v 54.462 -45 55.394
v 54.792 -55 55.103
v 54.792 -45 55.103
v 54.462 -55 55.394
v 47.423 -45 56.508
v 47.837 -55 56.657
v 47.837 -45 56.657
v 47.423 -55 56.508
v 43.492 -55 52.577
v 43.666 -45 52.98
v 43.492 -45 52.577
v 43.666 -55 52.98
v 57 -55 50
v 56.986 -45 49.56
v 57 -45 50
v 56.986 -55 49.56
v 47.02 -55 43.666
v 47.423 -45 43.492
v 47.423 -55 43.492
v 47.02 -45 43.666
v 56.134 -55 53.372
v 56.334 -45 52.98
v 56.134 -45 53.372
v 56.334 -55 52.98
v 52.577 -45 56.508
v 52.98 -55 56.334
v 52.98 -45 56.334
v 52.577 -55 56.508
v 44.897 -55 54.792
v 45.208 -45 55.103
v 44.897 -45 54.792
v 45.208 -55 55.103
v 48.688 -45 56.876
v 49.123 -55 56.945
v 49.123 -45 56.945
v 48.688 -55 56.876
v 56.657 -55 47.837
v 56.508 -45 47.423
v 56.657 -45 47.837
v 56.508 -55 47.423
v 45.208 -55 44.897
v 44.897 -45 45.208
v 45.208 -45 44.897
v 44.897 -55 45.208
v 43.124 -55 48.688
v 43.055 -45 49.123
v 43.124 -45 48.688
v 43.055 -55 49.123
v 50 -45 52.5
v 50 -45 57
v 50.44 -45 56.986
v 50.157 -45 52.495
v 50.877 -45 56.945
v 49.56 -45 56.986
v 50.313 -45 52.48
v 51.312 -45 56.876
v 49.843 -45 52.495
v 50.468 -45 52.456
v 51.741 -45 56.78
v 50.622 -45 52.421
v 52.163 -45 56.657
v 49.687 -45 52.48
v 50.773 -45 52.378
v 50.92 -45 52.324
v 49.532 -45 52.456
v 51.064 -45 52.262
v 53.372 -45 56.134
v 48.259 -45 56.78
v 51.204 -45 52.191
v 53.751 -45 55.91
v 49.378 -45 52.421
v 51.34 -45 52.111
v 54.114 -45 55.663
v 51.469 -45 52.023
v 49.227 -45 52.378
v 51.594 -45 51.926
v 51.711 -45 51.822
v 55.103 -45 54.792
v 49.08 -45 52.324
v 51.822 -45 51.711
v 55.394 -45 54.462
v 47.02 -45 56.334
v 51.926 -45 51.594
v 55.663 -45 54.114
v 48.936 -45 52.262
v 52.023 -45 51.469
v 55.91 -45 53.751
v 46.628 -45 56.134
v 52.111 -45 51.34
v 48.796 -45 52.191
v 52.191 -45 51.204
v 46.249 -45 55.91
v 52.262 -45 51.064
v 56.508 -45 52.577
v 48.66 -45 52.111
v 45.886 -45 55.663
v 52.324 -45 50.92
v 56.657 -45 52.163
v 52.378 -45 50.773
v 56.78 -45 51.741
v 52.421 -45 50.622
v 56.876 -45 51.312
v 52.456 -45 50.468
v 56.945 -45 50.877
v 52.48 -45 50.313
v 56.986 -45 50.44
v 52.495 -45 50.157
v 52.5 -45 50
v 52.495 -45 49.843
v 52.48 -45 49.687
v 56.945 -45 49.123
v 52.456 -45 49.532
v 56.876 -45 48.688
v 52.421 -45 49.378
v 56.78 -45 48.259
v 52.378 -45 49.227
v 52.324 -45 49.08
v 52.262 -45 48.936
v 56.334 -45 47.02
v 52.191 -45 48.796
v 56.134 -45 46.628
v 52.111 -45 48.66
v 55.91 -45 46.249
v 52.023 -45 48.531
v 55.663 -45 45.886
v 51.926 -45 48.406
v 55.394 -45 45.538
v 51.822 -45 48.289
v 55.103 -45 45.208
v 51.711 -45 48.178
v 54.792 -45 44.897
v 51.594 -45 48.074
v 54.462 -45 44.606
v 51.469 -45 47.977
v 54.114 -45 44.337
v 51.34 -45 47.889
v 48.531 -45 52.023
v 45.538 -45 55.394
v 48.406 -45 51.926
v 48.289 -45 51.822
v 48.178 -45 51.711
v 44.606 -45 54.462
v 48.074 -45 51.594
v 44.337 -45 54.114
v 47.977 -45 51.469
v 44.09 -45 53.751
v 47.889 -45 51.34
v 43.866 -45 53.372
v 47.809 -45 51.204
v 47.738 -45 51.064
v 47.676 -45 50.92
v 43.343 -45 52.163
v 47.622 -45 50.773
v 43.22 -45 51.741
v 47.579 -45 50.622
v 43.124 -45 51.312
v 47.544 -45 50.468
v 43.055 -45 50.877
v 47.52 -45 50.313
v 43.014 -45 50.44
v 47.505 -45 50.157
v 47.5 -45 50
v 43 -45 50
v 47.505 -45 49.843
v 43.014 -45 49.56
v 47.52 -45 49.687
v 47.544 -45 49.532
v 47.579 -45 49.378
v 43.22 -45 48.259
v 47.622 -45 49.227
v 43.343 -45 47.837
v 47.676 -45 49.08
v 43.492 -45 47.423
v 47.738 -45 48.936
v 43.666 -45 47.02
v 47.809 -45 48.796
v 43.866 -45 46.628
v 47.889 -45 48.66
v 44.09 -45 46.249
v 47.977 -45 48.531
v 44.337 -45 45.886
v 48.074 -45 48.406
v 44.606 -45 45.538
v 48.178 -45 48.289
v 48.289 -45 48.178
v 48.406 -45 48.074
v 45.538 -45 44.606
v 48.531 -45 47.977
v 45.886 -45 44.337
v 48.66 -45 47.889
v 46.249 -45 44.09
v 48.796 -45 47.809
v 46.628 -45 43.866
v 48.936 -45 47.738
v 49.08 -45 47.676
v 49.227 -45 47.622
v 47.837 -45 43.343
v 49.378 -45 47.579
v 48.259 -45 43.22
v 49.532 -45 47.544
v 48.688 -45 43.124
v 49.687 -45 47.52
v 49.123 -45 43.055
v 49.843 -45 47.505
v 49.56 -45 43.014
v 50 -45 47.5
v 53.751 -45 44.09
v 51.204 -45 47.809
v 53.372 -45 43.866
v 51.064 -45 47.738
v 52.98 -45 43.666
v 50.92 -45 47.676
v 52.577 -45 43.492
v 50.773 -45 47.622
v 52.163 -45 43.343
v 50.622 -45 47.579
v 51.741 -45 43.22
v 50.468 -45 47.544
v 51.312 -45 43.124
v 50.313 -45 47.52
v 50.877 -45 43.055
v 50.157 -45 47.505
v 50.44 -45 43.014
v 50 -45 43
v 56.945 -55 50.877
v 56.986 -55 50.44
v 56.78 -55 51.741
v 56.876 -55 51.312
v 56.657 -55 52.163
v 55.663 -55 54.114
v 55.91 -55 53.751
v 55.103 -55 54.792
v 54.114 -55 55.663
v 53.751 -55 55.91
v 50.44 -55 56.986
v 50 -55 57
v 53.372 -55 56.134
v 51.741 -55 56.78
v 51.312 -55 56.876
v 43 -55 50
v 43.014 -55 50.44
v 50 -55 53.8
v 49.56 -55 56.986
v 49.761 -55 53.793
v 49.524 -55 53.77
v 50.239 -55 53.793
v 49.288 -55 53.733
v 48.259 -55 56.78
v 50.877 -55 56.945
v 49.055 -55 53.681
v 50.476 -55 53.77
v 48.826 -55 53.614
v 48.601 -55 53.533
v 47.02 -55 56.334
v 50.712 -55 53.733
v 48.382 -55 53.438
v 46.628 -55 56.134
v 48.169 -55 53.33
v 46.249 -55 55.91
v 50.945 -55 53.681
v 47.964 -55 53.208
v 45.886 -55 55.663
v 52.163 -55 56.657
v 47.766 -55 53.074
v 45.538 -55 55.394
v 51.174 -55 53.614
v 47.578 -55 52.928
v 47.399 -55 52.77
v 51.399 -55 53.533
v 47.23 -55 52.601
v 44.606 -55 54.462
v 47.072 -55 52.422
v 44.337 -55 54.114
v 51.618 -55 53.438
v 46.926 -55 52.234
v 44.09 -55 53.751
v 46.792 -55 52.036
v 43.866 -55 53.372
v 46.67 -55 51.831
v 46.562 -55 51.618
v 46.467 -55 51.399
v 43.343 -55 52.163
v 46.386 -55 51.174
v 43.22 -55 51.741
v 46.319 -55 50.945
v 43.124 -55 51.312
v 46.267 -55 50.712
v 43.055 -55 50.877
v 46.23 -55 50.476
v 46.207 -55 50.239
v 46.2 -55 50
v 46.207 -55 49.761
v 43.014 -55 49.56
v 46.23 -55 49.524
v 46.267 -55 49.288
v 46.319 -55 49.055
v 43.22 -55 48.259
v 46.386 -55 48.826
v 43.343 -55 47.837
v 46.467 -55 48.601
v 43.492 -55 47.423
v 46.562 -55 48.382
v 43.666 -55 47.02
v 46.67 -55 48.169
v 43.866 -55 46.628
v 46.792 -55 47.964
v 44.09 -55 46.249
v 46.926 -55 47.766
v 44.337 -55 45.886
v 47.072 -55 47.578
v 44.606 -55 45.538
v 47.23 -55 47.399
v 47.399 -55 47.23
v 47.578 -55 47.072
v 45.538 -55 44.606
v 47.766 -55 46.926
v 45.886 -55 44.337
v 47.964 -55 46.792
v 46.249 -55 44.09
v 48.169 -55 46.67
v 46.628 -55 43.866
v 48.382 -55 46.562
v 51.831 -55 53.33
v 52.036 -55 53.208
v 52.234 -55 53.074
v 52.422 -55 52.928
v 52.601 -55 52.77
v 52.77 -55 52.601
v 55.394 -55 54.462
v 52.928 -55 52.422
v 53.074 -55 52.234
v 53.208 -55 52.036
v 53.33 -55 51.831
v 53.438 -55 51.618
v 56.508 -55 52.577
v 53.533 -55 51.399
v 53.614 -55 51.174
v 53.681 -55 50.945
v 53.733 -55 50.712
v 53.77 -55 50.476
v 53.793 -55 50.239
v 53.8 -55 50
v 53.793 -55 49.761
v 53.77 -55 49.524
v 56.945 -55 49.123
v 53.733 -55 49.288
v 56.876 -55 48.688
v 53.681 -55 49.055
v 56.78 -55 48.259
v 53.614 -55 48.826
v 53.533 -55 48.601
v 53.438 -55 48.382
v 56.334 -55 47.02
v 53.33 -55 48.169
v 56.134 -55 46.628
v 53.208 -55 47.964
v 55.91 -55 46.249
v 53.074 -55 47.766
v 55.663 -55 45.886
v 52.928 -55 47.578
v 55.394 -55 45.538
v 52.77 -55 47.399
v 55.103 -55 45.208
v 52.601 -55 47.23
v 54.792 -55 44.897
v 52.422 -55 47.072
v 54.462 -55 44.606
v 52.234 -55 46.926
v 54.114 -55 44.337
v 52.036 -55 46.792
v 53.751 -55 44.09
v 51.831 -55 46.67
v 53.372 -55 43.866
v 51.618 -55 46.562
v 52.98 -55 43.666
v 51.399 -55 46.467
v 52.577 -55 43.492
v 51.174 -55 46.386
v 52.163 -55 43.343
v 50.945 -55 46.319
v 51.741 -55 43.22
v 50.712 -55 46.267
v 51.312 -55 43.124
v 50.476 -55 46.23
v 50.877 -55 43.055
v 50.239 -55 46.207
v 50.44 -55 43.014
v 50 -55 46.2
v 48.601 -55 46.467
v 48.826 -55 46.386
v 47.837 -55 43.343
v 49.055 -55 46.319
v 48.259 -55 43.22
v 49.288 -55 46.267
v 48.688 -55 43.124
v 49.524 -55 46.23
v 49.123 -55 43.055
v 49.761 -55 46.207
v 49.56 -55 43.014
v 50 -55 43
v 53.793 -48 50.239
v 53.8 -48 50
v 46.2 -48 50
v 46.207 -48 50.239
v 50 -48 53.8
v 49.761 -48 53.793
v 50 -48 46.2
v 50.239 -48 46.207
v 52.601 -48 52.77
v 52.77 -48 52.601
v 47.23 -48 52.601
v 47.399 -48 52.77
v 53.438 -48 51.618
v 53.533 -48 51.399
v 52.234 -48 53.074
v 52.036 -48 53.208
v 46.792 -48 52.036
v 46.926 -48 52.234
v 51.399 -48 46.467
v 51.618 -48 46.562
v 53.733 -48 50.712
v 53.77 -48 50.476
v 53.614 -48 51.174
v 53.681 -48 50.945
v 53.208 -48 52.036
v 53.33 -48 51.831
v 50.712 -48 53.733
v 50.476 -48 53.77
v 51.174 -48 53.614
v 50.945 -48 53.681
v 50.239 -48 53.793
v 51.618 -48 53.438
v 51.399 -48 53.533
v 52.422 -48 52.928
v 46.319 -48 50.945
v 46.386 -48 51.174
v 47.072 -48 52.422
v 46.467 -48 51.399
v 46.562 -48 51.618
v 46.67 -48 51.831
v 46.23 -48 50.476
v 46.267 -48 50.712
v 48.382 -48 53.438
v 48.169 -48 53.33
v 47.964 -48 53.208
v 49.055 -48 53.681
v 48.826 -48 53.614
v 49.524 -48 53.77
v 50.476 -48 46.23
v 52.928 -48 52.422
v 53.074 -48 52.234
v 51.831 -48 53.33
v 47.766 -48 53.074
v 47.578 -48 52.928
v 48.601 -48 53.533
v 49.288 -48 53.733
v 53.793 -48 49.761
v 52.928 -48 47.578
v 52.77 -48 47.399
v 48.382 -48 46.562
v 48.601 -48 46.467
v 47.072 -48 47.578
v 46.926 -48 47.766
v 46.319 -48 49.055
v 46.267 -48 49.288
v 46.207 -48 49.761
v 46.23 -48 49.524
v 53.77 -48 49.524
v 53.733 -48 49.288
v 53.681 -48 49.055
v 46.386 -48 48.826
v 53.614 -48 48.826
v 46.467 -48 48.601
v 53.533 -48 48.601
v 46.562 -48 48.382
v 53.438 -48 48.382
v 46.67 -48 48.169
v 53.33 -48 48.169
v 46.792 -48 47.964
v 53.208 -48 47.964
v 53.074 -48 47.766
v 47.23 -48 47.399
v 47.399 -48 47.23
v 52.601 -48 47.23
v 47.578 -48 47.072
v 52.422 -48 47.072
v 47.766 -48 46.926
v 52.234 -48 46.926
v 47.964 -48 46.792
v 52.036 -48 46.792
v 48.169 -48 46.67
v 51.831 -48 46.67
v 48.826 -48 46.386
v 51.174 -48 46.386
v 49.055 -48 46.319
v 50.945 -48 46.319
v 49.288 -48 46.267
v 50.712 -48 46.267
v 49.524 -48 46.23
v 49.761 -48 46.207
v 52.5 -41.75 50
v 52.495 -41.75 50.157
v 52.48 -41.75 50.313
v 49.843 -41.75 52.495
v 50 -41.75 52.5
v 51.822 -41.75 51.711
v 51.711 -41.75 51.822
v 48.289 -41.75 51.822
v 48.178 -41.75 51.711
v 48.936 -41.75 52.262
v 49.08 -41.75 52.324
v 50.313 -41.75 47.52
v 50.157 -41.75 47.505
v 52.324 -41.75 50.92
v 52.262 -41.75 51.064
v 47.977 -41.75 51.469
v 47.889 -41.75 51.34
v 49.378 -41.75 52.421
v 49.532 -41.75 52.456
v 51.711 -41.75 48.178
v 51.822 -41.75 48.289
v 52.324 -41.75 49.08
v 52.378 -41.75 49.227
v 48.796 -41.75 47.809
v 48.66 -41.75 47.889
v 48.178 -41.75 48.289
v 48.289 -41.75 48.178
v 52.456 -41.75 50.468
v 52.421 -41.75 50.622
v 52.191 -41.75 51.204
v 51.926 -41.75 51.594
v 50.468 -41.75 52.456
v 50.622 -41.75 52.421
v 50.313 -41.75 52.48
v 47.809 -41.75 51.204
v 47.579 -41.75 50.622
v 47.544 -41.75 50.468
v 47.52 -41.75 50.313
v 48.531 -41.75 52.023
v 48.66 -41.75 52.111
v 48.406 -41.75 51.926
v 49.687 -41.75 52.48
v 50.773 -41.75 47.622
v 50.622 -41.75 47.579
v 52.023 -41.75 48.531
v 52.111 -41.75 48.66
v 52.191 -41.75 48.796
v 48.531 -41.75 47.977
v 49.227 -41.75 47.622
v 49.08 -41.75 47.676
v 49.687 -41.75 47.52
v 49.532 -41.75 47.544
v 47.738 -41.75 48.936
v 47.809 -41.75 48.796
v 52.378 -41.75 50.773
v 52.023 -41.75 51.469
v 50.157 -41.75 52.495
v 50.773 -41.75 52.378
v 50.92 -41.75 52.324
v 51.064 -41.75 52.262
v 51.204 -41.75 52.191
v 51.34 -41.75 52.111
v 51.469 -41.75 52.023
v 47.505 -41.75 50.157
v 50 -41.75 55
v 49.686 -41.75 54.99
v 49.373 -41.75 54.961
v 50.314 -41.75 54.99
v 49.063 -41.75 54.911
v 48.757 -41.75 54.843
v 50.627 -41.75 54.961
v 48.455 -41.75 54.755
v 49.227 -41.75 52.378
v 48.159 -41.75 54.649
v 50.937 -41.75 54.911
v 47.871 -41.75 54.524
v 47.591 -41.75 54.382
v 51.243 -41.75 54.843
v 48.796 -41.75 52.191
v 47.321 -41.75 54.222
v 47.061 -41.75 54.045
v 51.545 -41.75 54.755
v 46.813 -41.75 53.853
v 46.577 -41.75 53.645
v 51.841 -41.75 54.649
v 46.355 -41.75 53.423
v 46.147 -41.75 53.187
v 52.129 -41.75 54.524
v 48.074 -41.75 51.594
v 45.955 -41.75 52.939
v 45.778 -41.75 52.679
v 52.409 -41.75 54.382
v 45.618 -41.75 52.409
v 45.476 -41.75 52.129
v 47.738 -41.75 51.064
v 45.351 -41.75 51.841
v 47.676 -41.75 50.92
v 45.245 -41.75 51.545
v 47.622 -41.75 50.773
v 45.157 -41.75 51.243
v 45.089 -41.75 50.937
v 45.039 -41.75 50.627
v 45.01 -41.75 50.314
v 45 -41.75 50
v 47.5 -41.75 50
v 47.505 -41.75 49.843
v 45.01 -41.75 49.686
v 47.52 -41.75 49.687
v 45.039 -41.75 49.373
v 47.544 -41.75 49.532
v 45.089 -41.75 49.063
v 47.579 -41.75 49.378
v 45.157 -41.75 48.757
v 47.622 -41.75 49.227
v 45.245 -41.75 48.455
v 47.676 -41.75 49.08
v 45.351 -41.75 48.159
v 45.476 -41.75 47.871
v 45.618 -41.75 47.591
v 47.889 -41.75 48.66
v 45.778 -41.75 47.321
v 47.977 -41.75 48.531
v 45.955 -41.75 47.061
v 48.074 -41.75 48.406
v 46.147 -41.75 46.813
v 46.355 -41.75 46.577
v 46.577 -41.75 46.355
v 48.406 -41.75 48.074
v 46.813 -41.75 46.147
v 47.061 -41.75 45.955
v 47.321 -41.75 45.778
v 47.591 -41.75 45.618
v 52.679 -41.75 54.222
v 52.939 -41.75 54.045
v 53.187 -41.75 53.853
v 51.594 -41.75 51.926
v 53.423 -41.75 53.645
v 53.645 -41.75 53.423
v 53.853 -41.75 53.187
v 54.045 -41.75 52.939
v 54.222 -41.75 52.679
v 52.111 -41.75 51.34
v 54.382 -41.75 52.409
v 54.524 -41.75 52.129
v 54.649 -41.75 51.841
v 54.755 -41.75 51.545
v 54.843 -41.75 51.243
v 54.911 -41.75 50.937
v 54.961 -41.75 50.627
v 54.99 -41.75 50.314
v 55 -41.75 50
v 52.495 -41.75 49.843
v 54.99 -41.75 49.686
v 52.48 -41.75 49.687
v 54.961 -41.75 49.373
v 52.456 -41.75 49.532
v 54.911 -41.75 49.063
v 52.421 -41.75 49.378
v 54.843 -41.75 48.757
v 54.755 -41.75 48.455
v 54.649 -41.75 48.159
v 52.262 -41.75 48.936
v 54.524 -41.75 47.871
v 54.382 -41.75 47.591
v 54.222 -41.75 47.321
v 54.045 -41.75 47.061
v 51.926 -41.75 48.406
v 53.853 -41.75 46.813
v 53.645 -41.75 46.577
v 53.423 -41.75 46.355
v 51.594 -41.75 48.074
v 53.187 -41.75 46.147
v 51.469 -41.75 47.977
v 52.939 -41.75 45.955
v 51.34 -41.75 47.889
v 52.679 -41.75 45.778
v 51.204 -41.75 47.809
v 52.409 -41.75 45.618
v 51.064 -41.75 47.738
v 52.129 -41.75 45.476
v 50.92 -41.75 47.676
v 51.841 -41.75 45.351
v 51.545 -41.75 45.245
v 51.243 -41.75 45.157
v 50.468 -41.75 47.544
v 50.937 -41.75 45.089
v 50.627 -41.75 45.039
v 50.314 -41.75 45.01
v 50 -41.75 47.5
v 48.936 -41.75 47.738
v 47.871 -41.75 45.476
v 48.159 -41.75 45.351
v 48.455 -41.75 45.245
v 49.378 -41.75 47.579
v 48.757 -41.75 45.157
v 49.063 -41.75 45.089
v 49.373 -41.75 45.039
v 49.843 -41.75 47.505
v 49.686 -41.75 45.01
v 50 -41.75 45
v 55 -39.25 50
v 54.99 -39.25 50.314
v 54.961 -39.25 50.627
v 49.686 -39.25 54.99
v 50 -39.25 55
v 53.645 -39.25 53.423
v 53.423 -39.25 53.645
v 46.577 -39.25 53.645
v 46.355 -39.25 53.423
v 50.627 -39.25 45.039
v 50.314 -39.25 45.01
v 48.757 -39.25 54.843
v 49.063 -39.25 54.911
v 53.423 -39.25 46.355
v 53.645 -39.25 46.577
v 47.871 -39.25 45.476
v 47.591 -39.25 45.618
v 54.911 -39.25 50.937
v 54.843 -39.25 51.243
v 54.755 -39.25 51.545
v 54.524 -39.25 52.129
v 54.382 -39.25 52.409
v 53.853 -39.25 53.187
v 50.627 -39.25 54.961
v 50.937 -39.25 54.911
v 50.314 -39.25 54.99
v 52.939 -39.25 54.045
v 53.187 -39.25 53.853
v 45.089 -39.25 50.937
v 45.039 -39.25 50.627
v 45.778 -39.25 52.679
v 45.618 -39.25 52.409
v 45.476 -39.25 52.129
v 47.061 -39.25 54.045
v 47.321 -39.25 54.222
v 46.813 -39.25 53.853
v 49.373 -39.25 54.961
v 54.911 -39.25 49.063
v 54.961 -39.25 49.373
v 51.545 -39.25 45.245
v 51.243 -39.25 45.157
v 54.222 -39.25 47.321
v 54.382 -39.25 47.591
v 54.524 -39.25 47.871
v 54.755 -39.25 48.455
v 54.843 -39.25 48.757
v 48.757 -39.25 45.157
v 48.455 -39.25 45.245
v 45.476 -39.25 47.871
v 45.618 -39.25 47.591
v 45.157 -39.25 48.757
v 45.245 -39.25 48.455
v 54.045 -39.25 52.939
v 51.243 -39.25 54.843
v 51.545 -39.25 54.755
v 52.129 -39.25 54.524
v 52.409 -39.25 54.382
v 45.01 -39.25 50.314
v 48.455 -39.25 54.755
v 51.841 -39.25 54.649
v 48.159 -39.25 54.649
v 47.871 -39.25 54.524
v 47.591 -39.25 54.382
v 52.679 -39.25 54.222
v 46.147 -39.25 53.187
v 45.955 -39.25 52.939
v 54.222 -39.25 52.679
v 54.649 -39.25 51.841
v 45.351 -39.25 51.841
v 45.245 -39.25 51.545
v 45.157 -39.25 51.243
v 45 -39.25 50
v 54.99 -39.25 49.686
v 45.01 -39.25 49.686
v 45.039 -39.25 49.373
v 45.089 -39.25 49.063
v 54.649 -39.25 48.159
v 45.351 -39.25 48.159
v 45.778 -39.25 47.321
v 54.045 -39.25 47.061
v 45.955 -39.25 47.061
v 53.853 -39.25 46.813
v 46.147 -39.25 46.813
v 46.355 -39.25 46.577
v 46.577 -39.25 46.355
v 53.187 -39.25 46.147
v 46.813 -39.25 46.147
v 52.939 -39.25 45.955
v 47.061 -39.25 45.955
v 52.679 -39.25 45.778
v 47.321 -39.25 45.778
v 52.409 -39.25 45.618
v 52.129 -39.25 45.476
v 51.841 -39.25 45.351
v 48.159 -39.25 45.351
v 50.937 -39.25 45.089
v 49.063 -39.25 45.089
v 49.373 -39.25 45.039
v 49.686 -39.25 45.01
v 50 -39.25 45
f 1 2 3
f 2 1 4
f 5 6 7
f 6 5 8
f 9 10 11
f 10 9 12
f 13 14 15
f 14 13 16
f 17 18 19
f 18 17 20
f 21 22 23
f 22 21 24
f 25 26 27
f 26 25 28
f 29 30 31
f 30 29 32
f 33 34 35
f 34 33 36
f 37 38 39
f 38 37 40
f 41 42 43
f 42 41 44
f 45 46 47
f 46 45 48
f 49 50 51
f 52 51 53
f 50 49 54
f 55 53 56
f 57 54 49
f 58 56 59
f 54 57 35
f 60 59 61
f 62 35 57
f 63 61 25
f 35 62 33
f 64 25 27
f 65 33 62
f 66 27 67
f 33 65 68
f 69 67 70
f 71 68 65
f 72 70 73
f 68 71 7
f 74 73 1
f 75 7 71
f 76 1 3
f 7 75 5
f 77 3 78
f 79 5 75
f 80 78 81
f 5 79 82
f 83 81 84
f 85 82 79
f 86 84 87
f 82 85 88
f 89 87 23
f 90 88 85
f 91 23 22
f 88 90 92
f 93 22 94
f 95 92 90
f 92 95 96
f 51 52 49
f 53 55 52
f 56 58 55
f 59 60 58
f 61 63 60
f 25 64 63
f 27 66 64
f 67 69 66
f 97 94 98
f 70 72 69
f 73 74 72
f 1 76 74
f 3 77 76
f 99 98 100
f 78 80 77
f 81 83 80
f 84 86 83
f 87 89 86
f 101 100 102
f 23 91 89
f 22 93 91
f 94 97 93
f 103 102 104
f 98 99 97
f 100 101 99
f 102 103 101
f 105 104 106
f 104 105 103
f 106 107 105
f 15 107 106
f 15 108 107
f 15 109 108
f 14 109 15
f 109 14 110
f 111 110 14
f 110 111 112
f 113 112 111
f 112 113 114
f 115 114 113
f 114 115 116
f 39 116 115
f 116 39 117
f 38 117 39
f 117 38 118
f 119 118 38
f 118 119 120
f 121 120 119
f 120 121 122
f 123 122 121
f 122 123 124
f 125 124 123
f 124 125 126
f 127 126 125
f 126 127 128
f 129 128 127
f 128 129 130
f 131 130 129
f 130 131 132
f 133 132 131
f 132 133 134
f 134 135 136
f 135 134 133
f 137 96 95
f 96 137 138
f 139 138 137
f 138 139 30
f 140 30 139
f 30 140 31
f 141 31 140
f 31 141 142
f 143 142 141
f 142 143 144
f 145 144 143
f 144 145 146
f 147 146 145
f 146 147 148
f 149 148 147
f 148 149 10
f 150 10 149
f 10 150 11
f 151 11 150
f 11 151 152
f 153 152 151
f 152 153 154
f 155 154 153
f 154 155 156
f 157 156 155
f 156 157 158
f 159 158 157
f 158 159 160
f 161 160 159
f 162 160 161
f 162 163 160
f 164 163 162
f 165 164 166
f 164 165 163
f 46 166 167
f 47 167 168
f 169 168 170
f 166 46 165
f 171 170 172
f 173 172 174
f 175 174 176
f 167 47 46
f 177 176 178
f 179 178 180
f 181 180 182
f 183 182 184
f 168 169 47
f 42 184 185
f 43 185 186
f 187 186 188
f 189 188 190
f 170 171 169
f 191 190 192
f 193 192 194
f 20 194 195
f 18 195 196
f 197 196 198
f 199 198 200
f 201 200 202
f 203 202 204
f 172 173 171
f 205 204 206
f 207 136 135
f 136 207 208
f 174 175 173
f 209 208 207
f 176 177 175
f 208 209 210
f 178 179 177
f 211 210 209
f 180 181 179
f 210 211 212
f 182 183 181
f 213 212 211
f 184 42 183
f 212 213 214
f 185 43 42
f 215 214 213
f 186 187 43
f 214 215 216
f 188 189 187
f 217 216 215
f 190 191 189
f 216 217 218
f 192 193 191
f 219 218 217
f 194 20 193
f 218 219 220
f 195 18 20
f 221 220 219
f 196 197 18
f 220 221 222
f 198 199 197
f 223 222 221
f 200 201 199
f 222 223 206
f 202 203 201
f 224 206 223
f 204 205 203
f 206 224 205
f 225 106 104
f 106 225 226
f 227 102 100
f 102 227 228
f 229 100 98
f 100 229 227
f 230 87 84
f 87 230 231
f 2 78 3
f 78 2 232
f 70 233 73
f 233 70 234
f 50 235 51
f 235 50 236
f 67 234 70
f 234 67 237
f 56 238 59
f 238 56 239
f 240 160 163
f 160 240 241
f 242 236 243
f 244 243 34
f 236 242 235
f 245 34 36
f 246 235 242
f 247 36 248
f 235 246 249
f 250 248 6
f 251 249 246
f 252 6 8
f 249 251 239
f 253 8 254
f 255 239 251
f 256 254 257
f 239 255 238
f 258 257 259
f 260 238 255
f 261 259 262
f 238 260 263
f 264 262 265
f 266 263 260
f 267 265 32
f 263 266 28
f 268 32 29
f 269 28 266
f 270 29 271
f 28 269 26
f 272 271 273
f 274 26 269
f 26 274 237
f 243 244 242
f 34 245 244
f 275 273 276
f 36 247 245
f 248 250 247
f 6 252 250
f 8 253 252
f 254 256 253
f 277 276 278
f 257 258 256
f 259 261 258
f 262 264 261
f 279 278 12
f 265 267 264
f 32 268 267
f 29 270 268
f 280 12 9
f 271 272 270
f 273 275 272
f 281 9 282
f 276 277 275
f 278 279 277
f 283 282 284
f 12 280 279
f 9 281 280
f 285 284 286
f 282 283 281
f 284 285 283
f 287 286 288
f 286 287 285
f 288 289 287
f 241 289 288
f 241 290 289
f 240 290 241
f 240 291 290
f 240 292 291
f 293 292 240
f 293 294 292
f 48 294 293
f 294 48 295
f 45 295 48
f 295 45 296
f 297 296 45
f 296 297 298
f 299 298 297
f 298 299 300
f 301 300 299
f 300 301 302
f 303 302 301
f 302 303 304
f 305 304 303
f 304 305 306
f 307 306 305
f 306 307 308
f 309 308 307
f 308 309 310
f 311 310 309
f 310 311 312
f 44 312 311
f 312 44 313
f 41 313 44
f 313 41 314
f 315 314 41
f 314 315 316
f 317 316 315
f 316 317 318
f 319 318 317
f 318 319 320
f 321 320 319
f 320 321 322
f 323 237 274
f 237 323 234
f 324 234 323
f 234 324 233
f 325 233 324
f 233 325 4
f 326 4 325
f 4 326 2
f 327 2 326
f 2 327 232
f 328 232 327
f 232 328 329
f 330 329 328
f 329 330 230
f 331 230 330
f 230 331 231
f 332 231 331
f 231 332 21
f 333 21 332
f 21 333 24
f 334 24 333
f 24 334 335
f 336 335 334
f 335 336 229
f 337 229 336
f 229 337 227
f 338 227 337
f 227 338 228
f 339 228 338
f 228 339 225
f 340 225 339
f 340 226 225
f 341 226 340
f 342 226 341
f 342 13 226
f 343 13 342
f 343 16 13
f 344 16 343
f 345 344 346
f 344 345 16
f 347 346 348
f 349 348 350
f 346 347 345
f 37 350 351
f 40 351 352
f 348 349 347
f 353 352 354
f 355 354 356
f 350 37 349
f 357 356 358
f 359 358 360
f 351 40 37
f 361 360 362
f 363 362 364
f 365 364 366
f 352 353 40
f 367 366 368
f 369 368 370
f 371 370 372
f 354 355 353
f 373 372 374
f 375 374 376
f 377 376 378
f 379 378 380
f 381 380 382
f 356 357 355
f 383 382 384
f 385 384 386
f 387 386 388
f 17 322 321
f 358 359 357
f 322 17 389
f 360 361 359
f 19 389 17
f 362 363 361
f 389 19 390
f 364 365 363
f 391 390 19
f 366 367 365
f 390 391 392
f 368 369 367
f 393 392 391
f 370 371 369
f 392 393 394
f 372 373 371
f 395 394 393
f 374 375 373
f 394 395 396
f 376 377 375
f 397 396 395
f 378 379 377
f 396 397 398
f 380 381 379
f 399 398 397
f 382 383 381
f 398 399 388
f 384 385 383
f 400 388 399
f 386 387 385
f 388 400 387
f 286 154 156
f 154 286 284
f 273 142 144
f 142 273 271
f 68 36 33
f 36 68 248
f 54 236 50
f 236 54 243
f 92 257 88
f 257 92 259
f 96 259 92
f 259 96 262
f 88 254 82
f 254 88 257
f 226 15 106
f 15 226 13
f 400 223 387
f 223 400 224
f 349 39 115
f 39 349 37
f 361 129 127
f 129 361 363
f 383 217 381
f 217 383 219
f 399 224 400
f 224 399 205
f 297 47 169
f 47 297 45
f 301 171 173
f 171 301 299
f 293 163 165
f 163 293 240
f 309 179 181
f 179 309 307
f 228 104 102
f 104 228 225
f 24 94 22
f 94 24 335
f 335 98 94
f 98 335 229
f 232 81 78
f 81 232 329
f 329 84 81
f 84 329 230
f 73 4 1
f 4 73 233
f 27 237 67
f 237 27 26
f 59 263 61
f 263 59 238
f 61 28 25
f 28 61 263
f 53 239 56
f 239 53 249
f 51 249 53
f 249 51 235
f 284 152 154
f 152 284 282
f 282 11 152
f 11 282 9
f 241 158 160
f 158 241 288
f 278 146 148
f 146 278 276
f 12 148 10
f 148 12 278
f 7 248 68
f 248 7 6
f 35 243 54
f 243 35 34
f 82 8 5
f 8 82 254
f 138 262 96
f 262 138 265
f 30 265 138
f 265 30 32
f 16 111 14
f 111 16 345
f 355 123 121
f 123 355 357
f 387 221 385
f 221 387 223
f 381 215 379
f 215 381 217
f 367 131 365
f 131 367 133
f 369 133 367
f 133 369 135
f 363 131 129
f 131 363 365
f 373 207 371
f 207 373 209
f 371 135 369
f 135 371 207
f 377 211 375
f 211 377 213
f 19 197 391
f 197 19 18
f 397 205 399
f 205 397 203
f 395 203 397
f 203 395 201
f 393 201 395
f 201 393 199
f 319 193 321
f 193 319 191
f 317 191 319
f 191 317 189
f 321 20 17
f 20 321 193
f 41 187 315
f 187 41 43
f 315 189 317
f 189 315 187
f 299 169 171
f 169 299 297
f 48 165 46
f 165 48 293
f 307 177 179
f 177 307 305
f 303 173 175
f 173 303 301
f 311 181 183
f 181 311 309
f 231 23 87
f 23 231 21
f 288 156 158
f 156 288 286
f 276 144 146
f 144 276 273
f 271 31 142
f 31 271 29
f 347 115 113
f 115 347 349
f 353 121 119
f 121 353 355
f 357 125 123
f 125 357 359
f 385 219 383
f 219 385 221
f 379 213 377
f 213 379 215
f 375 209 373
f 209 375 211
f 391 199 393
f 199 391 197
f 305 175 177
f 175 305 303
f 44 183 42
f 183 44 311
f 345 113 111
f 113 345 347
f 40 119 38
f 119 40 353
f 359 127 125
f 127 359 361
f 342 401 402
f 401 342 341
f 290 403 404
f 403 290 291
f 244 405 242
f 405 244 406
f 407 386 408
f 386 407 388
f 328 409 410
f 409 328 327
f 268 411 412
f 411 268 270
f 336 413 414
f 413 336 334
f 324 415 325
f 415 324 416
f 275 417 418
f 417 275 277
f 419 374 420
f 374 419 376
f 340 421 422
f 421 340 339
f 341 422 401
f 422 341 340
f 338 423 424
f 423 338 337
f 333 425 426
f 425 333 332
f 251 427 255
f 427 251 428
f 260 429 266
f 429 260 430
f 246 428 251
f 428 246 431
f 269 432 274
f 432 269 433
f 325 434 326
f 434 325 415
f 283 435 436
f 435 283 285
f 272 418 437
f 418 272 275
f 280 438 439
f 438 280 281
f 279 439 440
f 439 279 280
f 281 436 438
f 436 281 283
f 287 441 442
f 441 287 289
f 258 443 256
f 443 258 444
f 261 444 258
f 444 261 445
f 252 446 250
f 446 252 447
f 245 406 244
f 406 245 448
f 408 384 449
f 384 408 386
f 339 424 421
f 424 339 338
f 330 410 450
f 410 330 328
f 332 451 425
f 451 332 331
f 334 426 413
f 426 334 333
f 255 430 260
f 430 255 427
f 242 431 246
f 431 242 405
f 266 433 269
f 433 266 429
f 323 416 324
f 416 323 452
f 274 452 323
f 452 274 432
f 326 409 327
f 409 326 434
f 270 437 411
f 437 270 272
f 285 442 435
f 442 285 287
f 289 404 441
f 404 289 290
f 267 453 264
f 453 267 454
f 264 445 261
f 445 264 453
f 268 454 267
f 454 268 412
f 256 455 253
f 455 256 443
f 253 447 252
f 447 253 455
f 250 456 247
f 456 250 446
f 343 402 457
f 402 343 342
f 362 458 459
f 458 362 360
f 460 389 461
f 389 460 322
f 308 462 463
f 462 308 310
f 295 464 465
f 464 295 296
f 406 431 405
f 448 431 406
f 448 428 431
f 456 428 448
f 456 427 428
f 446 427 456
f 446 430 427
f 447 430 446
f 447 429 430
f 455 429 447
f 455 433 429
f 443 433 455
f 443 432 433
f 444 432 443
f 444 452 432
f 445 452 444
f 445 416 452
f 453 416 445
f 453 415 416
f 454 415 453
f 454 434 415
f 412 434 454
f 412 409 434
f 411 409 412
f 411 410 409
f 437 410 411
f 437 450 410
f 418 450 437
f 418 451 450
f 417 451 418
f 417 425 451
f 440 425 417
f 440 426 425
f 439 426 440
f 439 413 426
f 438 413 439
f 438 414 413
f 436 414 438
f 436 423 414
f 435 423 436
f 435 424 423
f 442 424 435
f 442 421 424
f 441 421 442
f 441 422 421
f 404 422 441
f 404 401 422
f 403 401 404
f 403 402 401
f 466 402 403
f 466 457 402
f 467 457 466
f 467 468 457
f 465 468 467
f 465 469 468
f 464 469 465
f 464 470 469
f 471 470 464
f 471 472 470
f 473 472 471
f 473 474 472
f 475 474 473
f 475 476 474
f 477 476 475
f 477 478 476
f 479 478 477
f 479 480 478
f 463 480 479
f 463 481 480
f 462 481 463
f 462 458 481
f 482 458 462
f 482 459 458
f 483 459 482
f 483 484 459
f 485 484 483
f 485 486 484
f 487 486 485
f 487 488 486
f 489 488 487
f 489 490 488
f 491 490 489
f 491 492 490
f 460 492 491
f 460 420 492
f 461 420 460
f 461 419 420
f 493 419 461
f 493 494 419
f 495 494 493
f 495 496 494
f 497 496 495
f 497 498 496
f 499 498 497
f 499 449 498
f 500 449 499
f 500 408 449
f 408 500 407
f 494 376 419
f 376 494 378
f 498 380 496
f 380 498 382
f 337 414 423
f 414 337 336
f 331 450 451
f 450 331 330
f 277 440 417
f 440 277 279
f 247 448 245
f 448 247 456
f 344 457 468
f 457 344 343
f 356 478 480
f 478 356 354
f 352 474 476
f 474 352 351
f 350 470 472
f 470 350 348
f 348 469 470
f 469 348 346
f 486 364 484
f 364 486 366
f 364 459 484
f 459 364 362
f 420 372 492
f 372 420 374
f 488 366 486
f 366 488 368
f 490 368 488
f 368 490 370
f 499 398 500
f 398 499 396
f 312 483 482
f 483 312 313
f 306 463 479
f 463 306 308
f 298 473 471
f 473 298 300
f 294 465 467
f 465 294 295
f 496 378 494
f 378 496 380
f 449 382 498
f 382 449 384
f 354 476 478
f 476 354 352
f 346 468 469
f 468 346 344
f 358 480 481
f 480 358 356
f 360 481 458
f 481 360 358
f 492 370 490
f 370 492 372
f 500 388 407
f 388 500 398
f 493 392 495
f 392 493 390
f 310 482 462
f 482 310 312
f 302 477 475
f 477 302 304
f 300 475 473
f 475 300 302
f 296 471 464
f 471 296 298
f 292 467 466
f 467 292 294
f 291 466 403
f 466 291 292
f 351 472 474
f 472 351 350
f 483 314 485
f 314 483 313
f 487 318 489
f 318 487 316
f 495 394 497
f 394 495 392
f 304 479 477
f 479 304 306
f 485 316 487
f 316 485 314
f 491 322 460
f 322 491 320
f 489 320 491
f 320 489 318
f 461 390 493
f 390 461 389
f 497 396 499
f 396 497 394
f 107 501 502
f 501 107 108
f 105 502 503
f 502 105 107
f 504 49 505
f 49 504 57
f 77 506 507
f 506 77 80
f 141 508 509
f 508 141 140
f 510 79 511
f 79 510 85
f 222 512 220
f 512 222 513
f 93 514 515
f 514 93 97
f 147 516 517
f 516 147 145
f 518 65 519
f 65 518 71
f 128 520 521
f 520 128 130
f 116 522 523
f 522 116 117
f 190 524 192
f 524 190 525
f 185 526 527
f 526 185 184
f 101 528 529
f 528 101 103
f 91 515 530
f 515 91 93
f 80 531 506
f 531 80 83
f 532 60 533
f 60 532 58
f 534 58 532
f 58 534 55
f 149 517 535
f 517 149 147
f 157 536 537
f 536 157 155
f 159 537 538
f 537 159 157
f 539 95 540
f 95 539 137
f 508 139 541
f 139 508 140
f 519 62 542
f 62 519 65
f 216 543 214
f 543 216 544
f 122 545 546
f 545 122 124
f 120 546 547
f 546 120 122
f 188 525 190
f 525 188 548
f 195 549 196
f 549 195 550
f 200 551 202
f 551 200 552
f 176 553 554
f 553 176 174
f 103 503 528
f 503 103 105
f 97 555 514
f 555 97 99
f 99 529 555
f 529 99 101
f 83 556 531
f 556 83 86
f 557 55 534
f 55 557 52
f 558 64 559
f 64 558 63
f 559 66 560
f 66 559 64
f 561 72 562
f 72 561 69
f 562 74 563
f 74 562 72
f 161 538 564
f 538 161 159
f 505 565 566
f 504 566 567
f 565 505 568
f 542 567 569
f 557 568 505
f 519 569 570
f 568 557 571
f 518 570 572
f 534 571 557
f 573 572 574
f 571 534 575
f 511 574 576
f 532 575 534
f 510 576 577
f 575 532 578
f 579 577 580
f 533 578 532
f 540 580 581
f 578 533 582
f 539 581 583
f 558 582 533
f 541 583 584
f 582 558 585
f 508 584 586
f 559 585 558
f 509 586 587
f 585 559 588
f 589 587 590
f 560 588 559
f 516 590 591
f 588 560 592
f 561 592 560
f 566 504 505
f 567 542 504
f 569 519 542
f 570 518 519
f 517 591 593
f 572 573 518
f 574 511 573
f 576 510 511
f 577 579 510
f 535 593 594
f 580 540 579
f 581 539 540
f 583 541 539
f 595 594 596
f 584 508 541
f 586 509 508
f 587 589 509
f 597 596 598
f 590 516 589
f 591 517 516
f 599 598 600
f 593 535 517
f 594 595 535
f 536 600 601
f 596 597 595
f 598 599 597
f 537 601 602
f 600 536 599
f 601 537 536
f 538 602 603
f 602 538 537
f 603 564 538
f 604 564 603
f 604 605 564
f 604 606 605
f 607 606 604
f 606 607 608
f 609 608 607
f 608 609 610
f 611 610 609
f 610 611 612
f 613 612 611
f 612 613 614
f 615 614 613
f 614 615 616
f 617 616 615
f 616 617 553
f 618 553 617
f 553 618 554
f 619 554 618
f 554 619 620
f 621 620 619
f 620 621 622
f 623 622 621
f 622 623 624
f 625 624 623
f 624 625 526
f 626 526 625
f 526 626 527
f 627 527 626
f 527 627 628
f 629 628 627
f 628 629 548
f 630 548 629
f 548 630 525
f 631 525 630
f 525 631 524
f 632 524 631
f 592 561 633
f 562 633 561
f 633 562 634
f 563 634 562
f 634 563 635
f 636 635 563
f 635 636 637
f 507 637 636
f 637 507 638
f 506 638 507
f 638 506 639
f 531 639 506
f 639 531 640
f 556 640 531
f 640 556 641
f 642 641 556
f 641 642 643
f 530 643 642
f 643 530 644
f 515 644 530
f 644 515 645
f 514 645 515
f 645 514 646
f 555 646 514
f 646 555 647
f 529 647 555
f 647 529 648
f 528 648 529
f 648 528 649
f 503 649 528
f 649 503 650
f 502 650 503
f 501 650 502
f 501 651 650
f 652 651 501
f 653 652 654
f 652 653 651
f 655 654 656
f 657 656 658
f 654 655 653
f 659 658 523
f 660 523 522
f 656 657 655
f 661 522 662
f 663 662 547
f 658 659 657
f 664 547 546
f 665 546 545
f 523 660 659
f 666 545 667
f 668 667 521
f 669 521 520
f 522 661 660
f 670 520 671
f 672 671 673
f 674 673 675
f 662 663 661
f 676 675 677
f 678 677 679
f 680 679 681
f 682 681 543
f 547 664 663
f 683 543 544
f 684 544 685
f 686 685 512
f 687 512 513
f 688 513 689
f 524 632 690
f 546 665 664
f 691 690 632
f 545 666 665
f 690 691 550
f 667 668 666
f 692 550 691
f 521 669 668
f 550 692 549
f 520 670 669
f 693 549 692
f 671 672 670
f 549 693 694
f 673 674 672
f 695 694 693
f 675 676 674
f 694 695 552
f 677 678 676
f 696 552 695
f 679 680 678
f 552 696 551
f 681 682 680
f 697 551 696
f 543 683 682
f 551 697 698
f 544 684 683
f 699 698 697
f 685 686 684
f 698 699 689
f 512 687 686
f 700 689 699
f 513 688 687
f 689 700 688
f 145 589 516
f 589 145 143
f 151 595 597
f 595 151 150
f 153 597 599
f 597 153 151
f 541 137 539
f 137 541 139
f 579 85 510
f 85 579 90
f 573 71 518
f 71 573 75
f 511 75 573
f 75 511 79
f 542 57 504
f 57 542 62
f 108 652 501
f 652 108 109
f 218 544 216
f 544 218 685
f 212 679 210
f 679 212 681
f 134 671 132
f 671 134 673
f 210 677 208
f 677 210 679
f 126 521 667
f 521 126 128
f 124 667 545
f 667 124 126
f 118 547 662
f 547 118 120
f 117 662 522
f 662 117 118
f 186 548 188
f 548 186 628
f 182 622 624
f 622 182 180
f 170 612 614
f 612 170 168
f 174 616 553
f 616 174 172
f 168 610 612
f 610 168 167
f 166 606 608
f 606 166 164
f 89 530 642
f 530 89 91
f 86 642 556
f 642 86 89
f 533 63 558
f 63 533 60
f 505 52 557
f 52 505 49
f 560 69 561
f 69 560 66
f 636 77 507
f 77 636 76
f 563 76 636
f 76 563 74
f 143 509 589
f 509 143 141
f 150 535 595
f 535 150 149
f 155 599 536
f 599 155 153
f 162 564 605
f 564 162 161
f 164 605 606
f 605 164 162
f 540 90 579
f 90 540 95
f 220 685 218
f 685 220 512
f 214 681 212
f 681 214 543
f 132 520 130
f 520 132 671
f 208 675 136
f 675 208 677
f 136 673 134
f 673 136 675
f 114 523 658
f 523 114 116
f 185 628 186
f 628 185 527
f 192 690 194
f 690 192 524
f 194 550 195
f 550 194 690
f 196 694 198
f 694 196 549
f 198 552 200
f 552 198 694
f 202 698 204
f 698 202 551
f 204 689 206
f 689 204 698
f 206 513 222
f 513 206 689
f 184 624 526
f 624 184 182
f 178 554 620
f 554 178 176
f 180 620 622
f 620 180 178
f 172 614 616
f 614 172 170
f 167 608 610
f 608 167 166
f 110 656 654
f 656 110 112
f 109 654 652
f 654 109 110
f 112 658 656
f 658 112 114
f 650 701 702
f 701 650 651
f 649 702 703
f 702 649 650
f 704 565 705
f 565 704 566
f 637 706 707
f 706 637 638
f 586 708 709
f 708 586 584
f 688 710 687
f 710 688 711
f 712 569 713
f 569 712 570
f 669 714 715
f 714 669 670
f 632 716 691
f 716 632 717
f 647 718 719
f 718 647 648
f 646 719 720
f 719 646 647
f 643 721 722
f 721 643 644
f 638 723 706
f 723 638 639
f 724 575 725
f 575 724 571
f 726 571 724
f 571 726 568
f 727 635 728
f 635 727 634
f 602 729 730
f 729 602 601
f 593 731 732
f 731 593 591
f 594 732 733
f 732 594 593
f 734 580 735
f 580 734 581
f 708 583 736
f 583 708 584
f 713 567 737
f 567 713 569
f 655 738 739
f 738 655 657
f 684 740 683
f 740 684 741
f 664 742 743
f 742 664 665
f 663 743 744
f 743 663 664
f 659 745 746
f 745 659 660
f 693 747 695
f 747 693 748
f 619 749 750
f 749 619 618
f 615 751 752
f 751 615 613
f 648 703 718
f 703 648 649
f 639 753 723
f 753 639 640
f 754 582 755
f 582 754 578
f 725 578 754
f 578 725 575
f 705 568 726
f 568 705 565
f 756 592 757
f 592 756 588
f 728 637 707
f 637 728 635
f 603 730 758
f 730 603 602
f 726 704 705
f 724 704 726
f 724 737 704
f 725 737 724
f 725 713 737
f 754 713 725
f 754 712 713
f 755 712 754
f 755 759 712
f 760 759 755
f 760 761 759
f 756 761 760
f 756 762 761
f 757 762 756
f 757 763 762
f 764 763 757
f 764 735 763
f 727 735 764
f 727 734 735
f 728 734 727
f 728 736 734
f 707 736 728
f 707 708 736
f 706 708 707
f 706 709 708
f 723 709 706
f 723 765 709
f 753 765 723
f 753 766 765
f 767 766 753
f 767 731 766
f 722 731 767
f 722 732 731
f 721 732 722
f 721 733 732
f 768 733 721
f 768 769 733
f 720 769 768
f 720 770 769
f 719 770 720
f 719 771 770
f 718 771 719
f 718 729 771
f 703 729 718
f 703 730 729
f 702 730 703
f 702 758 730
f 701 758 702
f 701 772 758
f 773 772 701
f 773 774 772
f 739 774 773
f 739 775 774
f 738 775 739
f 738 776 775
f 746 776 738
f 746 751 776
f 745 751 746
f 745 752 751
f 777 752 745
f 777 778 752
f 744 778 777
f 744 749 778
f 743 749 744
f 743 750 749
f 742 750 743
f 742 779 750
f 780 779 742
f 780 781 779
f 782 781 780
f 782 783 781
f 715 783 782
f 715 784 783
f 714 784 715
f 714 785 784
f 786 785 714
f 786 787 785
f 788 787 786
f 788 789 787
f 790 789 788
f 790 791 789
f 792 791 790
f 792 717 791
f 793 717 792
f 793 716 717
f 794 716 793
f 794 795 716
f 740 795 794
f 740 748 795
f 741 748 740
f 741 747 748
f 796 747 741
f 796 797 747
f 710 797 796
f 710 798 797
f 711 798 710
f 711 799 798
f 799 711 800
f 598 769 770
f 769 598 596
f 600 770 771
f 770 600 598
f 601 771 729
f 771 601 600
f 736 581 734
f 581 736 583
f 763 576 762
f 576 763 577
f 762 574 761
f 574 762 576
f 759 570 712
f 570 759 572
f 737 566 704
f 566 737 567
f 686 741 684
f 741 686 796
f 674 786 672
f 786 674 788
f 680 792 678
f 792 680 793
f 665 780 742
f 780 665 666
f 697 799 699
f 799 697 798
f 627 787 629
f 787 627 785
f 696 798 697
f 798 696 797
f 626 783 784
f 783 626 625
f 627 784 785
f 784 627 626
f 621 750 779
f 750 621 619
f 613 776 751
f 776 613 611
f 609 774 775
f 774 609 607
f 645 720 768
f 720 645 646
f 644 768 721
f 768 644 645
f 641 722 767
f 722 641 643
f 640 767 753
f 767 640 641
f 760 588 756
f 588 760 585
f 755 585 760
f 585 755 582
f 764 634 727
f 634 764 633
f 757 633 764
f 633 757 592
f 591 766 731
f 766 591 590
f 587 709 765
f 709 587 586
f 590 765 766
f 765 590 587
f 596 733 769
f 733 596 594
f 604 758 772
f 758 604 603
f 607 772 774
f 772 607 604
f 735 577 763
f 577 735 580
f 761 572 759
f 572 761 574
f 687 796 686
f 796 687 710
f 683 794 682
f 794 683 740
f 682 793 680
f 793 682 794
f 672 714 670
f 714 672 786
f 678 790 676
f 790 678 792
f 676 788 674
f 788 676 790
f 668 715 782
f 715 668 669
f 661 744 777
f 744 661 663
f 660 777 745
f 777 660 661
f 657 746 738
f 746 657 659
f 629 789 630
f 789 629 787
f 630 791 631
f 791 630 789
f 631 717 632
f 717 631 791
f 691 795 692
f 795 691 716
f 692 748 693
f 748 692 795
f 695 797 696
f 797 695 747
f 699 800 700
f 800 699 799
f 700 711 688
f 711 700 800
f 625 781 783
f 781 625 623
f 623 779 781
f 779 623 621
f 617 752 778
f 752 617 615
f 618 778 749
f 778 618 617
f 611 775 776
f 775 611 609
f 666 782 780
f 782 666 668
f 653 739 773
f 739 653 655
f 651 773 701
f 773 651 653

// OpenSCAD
  translate([0,0,0]){
  translate([50,-50,50])rotate([90,0,0]) difference(){cylinder(h=10,r=7, center=true,$fn=100);
     #translate([0,0,3])cylinder(h=10,r=3.8, center=true,$fn=100);
  }; 
 translate([50,-44,50])rotate([90,0,0]) cylinder(h=4.5,r=2.5, center=true,$fn=100);
   translate([50,-40.5,50])rotate([90,0,0]) cylinder(h=2.5,r=5, center=true,$fn=100);
  };
  
